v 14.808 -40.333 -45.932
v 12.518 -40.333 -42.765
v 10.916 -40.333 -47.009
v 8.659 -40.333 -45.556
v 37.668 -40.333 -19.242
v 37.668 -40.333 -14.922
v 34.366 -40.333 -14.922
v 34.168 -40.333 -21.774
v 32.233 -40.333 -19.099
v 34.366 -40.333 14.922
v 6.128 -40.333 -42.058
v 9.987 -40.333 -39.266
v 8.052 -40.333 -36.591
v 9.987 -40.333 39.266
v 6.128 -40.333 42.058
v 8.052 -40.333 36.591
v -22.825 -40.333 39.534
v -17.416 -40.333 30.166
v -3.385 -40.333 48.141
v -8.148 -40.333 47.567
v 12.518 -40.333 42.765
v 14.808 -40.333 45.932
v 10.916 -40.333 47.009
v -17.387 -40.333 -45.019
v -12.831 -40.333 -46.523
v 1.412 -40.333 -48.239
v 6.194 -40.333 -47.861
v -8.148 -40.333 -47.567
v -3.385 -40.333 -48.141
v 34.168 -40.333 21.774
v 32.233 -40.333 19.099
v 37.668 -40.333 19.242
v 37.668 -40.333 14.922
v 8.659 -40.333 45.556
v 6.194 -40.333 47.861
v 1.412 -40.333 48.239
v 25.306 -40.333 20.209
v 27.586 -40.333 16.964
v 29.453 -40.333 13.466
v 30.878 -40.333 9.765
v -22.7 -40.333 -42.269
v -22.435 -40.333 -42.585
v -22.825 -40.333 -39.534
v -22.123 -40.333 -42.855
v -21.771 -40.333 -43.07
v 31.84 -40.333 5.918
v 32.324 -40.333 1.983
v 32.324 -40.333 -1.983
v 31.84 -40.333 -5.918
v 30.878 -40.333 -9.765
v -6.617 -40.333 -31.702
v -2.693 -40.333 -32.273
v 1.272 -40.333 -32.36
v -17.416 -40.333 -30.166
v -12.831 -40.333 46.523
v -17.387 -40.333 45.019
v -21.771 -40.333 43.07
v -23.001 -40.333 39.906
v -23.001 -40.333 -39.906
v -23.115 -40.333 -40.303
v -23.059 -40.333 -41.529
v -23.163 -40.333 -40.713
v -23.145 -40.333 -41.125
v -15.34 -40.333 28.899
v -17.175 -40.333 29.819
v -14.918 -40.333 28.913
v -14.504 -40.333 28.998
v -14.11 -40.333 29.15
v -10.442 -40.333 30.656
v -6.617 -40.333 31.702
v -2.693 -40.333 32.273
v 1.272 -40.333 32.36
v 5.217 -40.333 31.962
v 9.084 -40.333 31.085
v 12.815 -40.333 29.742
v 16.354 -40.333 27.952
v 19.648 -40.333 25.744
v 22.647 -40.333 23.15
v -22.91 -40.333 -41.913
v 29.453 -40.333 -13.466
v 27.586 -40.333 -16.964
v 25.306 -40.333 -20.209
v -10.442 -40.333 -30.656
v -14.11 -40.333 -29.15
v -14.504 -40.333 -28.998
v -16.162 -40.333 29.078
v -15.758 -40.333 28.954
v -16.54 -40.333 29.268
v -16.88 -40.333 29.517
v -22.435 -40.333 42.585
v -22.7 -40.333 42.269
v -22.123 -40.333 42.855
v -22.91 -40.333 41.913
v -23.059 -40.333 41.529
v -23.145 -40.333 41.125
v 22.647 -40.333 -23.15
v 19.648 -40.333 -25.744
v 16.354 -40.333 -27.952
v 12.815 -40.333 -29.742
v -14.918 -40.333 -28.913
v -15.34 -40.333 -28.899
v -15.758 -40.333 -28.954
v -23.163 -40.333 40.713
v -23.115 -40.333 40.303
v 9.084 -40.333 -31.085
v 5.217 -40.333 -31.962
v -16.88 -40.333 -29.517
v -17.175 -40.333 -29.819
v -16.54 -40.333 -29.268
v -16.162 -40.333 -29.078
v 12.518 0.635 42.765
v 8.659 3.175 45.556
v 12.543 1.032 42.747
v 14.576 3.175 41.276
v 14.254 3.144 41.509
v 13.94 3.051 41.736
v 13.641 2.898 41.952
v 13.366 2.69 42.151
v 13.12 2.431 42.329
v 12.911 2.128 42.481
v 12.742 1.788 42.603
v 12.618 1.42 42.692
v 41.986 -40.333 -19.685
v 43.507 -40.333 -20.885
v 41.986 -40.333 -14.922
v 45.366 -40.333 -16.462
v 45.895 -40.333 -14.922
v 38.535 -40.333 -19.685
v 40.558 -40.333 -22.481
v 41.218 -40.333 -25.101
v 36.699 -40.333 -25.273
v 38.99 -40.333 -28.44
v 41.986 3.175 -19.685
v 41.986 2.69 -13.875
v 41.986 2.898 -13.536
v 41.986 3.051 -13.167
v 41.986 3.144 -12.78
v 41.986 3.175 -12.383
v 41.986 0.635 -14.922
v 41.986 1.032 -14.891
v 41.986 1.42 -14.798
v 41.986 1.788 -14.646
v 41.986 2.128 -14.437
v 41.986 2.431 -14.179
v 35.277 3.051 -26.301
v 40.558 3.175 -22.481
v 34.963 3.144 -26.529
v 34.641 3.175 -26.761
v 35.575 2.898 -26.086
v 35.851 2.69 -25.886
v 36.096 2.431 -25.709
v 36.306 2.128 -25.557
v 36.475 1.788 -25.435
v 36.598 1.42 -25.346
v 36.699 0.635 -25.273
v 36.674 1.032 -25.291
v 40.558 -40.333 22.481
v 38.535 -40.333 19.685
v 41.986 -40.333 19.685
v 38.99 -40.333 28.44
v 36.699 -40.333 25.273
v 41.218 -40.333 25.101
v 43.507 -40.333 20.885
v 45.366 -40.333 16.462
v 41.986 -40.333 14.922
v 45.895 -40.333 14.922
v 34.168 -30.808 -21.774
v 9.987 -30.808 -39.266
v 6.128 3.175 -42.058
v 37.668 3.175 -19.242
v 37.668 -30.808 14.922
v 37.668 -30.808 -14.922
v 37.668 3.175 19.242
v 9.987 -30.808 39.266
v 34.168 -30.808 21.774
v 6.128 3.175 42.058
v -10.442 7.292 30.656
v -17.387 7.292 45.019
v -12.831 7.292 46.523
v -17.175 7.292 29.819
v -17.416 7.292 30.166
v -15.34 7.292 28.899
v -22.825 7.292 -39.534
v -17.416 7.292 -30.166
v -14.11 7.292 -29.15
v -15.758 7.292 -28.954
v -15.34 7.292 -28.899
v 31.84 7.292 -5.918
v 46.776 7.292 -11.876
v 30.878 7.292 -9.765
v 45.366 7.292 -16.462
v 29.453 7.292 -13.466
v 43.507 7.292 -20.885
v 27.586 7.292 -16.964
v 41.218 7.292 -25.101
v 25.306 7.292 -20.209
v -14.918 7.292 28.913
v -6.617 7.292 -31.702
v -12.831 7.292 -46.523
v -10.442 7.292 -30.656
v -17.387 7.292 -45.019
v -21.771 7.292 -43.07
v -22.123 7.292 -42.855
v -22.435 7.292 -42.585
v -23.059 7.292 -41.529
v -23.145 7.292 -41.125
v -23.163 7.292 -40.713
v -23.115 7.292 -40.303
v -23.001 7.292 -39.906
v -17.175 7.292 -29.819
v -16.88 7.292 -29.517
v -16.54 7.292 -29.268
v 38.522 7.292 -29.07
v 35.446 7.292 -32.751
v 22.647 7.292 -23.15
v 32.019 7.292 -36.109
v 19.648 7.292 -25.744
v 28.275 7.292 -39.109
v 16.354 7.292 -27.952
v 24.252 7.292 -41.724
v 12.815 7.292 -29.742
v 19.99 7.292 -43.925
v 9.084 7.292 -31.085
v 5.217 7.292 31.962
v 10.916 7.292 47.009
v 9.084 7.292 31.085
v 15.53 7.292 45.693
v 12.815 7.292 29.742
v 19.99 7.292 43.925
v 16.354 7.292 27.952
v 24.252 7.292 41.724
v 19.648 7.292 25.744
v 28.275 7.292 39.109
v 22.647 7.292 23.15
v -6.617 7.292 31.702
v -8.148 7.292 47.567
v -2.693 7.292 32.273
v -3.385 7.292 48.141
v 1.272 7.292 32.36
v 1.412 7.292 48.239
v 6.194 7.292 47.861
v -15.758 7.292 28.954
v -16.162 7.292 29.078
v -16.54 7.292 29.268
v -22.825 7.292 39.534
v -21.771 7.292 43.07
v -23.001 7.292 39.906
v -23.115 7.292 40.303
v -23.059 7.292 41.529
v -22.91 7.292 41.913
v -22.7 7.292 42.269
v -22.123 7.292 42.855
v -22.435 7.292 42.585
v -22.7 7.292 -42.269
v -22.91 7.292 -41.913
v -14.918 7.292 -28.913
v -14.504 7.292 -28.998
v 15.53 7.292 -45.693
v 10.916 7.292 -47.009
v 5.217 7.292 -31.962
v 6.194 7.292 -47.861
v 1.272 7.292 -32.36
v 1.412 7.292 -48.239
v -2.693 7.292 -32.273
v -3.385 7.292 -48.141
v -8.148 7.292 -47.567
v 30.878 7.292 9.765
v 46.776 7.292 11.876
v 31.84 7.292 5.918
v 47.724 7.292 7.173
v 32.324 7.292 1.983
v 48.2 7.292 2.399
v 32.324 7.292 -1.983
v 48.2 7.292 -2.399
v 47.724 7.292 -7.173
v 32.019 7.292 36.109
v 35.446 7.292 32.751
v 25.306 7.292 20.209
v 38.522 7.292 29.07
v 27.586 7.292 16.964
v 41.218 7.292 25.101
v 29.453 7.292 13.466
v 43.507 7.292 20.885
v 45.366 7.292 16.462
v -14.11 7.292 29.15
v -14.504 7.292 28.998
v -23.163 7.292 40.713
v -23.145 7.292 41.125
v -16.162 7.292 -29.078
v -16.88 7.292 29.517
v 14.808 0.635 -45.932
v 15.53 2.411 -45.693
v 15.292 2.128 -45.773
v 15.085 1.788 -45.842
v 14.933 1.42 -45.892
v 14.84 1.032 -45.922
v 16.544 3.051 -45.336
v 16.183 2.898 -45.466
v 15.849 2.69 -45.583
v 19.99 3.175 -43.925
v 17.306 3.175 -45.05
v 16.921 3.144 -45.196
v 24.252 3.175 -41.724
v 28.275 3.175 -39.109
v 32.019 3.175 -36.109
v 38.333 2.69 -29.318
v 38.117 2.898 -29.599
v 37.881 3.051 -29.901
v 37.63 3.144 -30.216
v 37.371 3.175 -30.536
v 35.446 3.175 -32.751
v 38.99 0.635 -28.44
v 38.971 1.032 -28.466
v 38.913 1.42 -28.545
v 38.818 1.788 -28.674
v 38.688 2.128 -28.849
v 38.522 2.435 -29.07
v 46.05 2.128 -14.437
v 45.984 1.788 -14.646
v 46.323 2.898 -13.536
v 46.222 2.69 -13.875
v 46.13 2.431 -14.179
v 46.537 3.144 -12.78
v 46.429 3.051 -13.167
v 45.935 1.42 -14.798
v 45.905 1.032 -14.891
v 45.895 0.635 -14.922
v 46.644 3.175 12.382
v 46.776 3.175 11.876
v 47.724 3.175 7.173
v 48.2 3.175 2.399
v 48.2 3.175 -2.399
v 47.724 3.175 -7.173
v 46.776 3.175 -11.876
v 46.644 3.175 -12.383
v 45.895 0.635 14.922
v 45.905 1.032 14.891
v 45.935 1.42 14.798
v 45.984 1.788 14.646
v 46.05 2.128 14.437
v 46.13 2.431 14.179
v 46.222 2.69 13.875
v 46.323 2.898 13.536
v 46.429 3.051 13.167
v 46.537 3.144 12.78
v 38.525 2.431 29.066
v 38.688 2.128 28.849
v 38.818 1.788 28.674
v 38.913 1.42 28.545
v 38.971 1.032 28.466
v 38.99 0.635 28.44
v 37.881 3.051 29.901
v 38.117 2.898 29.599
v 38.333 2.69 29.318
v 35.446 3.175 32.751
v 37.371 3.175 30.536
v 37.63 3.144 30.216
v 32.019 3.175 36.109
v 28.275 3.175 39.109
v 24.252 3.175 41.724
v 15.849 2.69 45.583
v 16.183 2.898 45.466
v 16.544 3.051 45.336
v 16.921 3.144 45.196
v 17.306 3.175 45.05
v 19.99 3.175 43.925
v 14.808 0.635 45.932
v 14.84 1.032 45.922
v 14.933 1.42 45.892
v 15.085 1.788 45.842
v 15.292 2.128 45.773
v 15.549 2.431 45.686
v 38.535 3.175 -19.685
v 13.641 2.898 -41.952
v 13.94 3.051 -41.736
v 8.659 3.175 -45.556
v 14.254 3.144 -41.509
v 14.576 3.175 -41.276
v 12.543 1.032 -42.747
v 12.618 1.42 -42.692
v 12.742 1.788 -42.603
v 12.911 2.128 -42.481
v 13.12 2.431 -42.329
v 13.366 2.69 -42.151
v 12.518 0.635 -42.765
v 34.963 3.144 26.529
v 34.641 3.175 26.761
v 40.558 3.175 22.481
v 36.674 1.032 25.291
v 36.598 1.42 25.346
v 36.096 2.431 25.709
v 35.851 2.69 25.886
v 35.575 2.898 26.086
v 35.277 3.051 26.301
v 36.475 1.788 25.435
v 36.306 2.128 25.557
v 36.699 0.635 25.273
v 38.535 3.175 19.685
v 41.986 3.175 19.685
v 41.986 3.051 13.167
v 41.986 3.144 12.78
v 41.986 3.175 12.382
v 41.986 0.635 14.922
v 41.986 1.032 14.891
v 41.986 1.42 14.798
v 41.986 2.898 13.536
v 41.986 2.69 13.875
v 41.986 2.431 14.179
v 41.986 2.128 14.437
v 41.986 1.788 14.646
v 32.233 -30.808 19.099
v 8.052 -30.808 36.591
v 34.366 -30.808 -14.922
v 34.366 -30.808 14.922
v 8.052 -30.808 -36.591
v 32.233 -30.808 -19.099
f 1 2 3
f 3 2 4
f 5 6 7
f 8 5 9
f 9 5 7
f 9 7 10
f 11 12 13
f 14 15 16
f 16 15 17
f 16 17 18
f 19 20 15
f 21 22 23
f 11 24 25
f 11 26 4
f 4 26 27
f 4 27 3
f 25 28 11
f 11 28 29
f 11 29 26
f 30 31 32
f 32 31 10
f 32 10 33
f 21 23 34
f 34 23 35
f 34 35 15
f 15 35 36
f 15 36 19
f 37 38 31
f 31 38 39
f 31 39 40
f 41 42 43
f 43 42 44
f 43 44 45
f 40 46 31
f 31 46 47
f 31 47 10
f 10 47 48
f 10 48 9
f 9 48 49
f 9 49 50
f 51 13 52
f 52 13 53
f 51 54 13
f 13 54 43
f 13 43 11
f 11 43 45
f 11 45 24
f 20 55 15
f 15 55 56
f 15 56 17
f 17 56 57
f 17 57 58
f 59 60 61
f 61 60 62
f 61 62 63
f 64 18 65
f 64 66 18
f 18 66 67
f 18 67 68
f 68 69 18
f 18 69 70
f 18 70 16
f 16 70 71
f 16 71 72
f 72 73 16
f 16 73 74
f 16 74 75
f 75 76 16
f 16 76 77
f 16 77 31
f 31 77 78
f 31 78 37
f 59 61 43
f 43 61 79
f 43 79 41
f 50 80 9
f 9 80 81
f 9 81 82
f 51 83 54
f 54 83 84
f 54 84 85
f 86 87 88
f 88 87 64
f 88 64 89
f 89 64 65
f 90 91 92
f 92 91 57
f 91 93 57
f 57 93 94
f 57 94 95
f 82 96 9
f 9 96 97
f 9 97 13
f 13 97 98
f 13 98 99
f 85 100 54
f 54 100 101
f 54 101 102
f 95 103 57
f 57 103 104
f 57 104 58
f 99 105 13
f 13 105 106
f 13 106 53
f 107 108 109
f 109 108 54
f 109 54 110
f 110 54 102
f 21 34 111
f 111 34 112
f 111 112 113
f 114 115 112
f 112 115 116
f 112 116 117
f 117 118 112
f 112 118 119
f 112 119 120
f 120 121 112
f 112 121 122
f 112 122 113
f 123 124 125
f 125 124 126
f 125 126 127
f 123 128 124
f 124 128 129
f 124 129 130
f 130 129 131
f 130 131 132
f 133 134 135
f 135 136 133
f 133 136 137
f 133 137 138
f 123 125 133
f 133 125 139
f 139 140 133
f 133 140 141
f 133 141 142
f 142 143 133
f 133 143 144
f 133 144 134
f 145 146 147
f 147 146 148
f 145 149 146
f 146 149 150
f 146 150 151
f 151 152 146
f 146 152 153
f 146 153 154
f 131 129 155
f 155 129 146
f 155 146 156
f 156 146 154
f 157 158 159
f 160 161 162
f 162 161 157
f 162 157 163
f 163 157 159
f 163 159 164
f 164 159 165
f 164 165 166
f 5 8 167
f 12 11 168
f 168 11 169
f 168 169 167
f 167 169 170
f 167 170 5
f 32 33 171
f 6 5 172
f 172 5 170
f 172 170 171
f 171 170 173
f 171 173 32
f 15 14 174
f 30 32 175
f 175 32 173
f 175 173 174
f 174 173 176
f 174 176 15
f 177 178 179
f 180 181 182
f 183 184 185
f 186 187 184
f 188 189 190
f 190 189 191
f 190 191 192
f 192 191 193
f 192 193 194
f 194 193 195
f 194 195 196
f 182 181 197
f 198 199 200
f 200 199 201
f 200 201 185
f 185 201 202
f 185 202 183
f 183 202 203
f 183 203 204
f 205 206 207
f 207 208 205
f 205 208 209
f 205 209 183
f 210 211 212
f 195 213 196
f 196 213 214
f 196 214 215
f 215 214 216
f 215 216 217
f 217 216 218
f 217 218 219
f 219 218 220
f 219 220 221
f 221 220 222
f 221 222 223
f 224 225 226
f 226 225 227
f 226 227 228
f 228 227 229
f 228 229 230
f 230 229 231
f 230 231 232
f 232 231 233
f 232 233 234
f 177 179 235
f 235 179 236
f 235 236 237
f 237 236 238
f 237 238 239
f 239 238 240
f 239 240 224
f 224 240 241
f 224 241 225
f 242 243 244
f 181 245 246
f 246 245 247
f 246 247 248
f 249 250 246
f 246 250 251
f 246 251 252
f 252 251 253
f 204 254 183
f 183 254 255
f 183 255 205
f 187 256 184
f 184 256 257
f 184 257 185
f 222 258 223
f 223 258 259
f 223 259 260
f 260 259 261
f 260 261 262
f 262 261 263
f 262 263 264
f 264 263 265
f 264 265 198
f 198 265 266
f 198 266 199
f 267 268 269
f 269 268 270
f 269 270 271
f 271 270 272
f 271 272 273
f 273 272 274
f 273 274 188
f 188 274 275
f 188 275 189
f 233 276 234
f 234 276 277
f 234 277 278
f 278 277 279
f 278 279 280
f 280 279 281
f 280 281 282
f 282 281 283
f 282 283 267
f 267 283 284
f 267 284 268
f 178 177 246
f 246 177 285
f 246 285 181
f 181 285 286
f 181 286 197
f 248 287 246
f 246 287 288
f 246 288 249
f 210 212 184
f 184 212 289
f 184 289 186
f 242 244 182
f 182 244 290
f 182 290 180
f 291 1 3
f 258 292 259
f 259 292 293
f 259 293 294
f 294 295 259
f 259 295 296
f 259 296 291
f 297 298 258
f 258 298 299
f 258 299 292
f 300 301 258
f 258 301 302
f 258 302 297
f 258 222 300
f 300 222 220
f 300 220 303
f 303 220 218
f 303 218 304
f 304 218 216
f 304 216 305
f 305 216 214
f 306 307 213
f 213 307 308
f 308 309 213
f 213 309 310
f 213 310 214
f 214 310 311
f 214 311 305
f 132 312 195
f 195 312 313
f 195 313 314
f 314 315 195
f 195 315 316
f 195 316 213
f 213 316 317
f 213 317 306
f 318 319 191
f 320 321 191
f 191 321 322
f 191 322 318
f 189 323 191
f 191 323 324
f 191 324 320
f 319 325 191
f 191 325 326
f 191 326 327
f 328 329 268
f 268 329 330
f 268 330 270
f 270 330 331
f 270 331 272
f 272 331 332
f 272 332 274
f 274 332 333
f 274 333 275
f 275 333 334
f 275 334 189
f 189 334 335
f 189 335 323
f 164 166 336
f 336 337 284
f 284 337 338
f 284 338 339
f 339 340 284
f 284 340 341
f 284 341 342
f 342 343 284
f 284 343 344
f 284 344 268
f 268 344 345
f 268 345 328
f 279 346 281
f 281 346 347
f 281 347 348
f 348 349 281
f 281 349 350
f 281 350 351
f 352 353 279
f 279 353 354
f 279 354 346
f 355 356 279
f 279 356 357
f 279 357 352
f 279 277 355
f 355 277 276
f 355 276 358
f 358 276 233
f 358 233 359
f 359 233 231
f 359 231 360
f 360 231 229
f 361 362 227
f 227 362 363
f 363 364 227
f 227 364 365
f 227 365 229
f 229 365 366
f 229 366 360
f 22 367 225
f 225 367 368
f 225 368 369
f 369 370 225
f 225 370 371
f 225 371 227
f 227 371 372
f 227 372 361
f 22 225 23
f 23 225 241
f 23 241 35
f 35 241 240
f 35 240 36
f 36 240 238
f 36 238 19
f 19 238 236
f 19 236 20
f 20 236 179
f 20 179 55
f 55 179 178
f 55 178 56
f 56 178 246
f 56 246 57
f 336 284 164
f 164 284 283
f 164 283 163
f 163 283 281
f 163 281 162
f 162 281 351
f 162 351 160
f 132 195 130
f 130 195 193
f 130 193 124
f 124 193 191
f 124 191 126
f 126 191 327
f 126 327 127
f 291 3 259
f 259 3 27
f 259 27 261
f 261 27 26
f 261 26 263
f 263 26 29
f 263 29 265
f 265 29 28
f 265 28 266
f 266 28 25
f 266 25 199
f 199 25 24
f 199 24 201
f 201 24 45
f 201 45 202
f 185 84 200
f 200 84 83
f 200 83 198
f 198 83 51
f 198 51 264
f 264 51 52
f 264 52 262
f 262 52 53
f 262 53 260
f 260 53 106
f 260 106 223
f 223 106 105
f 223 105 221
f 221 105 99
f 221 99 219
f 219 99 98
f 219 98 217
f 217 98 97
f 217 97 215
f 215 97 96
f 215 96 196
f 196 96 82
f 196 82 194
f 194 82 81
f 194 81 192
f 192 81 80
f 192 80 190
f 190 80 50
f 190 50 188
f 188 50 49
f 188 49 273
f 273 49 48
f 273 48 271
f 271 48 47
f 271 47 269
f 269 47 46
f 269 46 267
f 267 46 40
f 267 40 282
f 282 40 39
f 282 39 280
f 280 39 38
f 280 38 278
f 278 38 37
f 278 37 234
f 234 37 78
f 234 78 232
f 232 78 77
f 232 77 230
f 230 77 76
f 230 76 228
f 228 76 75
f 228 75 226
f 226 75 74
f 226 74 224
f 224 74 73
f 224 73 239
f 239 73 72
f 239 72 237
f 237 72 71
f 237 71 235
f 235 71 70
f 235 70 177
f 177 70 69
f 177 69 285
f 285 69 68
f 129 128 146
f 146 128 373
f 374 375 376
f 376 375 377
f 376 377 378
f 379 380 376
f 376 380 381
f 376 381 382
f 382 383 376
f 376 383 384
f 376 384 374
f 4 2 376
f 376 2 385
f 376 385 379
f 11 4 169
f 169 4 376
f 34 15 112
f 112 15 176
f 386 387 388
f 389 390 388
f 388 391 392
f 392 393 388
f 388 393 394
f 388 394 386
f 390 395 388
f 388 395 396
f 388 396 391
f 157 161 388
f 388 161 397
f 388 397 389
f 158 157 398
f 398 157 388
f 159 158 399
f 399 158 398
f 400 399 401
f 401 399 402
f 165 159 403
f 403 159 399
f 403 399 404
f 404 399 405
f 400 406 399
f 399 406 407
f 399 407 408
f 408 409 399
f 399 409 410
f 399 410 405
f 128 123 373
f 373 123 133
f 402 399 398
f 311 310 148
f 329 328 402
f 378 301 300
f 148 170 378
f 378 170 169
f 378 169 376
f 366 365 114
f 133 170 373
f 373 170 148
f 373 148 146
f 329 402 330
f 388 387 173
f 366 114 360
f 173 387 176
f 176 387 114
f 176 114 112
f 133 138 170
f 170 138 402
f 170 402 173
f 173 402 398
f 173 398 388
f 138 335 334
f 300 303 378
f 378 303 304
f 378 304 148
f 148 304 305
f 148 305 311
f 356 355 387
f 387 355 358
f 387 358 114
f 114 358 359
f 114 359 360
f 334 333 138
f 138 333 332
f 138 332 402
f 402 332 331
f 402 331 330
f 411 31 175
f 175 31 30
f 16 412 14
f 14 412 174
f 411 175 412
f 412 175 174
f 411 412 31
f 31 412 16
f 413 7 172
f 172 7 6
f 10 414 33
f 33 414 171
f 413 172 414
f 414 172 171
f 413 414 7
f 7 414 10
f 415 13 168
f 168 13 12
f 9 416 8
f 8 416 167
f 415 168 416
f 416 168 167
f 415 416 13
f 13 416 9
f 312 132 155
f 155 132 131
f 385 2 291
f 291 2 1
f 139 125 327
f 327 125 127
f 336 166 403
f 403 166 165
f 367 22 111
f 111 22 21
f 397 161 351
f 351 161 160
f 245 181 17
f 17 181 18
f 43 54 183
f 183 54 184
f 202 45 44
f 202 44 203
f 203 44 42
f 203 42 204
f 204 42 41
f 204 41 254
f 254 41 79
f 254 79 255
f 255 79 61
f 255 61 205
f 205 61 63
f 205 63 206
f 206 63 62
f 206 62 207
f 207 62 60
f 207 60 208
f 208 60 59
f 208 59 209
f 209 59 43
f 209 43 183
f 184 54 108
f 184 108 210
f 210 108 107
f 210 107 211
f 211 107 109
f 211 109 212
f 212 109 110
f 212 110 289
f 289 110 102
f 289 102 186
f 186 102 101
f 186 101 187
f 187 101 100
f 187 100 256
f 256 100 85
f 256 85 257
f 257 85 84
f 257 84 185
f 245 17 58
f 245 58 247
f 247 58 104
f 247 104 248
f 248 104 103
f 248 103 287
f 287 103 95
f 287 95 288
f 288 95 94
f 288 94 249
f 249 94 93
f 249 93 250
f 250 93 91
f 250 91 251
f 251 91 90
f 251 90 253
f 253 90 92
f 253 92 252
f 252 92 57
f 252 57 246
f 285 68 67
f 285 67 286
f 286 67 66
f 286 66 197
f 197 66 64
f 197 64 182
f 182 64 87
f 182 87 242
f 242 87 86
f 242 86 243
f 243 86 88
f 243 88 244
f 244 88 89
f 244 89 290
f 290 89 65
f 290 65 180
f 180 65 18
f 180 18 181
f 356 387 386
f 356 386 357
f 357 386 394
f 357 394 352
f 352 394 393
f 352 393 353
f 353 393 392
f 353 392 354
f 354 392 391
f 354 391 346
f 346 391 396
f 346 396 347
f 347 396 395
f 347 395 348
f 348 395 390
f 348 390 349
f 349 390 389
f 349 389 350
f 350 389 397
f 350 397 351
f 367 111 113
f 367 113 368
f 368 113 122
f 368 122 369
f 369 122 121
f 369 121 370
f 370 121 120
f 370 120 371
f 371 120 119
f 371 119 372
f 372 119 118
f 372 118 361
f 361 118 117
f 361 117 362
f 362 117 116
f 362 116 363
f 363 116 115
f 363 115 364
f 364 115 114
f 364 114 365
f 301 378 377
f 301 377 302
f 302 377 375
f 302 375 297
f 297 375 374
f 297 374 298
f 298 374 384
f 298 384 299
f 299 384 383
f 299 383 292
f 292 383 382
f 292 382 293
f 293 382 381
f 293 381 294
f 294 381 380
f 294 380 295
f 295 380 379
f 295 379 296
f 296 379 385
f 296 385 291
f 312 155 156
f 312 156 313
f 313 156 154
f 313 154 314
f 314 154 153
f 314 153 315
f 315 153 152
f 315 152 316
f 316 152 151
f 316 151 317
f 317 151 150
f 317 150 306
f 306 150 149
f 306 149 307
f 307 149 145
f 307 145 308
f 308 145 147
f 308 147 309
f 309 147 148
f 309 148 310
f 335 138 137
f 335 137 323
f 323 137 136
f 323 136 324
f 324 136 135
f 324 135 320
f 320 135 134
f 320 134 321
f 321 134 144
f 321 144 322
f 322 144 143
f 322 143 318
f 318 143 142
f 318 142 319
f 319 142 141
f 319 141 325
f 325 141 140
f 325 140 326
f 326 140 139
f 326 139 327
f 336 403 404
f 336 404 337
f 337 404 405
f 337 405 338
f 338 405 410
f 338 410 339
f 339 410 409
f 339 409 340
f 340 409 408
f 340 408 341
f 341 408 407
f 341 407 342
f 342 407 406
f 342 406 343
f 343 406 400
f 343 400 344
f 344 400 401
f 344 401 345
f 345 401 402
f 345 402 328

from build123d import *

# Parameters (mm, degrees)
SKETCH1_R           = 48.26
SKETCH1_R_2         = 32.385
BOSS_EXTRUDE1_DEPTH = 47.625
CUT_EXTRUDE2_START  = -43.50766
CUT_EXTRUDE2_DEPTH  = 43.50766
SKETCH3_W           = 4.572
SKETCH3_H           = 29.845
CUT_EXTRUDE3_DEPTH  = 9.525
SKETCH4_W           = 29.845
SKETCH4_H           = 43.50766
CUT_EXTRUDE4_DEPTH  = 26.400930862
SKETCH5_W           = 29.845
SKETCH5_H           = 43.50766
CUT_EXTRUDE5_DEPTH  = 7.273566766
SKETCH6_W           = 29.845
SKETCH6_H           = 43.50766
CUT_EXTRUDE6_DEPTH  = 26.400930862
CUT_EXTRUDE7_DEPTH  = 48.625
FILLET1_R           = 2.54
FILLET2_R           = 2.54


with BuildPart() as part:
    # Sketch1 → Boss-Extrude1 (new body)
    with BuildSketch(Plane(origin=(0, -40.33266, 0), x_dir=(1, 0, 0), z_dir=(0, 1, 0))):
        Circle(SKETCH1_R)
        Circle(SKETCH1_R_2, mode=Mode.SUBTRACT)
    extrude(amount=BOSS_EXTRUDE1_DEPTH)

    # Sketch2 → Cut-Extrude2 (cut)
    with BuildSketch(Plane.XZ.offset(40.33266).offset(CUT_EXTRUDE2_START)):
        Polygon((40.557916835, -22.48144085), (8.658940442, -45.556366746), (6.128142118, -42.057769336), (37.668433234, -19.242307445), (37.668433234, 19.242307445), (6.128142118, 42.057769336), (8.658940442, 45.556366746), (40.557916835, 22.48144085), (38.535041098, 19.685), (41.986433234, 19.685), (41.986433234, -19.685), (38.535041098, -19.685), align=None)
    extrude(amount=CUT_EXTRUDE2_DEPTH, mode=Mode.SUBTRACT)

    # Sketch3 → Cut-Extrude3 (cut)
    with BuildSketch(Plane(origin=(0, -40.33266, 0), x_dir=(1, 0, 0), z_dir=(0, 1, 0))):
        Polygon((10.731241711, 40.295446893), (8.051572897, 36.591049635), (32.233055001, 19.098767101), (34.912723815, 22.803164359), align=None)
        with Locations((36.652433234, 0)):
            Rectangle(SKETCH3_W, SKETCH3_H)
        Polygon((32.233055001, -19.098767101), (8.051572897, -36.591049635), (10.731241711, -40.295446893), (34.912723815, -22.803164359), align=None)
    extrude(amount=CUT_EXTRUDE3_DEPTH, mode=Mode.SUBTRACT)

    # Sketch4 → Cut-Extrude4 (cut, through all)
    with BuildSketch(Plane(origin=(24.608428639, 0, -34.018903798), x_dir=(0.810235621, 0, 0.58610429), z_dir=(-0.58610429, 0, 0.810235621))):
        with Locations((0, -18.57883)):
            Rectangle(SKETCH4_W, SKETCH4_H)
    extrude(amount=-CUT_EXTRUDE4_DEPTH, mode=Mode.SUBTRACT)

    # Sketch5 → Cut-Extrude5 (cut, through all)
    with BuildSketch(Plane.ZY.offset(-41.986433234)):
        with Locations((0, -18.57883)):
            Rectangle(SKETCH5_W, SKETCH5_H)
    extrude(amount=-CUT_EXTRUDE5_DEPTH, mode=Mode.SUBTRACT)

    # Sketch6 → Cut-Extrude6 (cut, through all)
    with BuildSketch(Plane(origin=(24.608428639, 0, 34.018903798), x_dir=(-0.810235621, 0, 0.58610429), z_dir=(-0.58610429, 0, -0.810235621))):
        with Locations((0, -18.57883)):
            Rectangle(SKETCH6_W, SKETCH6_H)
    extrude(amount=-CUT_EXTRUDE6_DEPTH, mode=Mode.SUBTRACT)

    # Sketch7 → Cut-Extrude7 (cut, through all)
    with BuildSketch(Plane.XZ.offset(40.33266)):
        with BuildLine():
            Line((0, 0), (-24.13, 41.794385987))
            ThreePointArc((-24.13, 41.794385987), (-48.26, 0), (-24.13, -41.794385987))
            Line((-24.13, -41.794385987), (0, 0))
        make_face()
    extrude(amount=-CUT_EXTRUDE7_DEPTH, mode=Mode.SUBTRACT)

    # Fillet1
    fillet1_edges = [part.edges().sort_by_distance(p)[0] for p in [
        (-16.1925, -16.52016, 28.046232702),
        (-16.1925, -16.52016, -28.046232702),
        (-24.13, -16.52016, -41.794385987),
        (-24.13, -16.52016, 41.794385987),
    ]]
    fillet(fillet1_edges, radius=FILLET1_R)

    # Fillet2
    fillet2_edges = [part.edges().sort_by_distance(p)[0] for p in [
        (13.663087314, 3.175, -44.348455518),
        (37.844569418, 3.175, -26.856172984),
        (43.940692479, 3.175, -14.9225),
        (43.940692479, 3.175, 14.9225),
        (37.844569418, 3.175, 26.856172984),
        (13.663087314, 3.175, 44.348455518),
    ]]
    fillet(fillet2_edges, radius=FILLET2_R)


solid = part.part
